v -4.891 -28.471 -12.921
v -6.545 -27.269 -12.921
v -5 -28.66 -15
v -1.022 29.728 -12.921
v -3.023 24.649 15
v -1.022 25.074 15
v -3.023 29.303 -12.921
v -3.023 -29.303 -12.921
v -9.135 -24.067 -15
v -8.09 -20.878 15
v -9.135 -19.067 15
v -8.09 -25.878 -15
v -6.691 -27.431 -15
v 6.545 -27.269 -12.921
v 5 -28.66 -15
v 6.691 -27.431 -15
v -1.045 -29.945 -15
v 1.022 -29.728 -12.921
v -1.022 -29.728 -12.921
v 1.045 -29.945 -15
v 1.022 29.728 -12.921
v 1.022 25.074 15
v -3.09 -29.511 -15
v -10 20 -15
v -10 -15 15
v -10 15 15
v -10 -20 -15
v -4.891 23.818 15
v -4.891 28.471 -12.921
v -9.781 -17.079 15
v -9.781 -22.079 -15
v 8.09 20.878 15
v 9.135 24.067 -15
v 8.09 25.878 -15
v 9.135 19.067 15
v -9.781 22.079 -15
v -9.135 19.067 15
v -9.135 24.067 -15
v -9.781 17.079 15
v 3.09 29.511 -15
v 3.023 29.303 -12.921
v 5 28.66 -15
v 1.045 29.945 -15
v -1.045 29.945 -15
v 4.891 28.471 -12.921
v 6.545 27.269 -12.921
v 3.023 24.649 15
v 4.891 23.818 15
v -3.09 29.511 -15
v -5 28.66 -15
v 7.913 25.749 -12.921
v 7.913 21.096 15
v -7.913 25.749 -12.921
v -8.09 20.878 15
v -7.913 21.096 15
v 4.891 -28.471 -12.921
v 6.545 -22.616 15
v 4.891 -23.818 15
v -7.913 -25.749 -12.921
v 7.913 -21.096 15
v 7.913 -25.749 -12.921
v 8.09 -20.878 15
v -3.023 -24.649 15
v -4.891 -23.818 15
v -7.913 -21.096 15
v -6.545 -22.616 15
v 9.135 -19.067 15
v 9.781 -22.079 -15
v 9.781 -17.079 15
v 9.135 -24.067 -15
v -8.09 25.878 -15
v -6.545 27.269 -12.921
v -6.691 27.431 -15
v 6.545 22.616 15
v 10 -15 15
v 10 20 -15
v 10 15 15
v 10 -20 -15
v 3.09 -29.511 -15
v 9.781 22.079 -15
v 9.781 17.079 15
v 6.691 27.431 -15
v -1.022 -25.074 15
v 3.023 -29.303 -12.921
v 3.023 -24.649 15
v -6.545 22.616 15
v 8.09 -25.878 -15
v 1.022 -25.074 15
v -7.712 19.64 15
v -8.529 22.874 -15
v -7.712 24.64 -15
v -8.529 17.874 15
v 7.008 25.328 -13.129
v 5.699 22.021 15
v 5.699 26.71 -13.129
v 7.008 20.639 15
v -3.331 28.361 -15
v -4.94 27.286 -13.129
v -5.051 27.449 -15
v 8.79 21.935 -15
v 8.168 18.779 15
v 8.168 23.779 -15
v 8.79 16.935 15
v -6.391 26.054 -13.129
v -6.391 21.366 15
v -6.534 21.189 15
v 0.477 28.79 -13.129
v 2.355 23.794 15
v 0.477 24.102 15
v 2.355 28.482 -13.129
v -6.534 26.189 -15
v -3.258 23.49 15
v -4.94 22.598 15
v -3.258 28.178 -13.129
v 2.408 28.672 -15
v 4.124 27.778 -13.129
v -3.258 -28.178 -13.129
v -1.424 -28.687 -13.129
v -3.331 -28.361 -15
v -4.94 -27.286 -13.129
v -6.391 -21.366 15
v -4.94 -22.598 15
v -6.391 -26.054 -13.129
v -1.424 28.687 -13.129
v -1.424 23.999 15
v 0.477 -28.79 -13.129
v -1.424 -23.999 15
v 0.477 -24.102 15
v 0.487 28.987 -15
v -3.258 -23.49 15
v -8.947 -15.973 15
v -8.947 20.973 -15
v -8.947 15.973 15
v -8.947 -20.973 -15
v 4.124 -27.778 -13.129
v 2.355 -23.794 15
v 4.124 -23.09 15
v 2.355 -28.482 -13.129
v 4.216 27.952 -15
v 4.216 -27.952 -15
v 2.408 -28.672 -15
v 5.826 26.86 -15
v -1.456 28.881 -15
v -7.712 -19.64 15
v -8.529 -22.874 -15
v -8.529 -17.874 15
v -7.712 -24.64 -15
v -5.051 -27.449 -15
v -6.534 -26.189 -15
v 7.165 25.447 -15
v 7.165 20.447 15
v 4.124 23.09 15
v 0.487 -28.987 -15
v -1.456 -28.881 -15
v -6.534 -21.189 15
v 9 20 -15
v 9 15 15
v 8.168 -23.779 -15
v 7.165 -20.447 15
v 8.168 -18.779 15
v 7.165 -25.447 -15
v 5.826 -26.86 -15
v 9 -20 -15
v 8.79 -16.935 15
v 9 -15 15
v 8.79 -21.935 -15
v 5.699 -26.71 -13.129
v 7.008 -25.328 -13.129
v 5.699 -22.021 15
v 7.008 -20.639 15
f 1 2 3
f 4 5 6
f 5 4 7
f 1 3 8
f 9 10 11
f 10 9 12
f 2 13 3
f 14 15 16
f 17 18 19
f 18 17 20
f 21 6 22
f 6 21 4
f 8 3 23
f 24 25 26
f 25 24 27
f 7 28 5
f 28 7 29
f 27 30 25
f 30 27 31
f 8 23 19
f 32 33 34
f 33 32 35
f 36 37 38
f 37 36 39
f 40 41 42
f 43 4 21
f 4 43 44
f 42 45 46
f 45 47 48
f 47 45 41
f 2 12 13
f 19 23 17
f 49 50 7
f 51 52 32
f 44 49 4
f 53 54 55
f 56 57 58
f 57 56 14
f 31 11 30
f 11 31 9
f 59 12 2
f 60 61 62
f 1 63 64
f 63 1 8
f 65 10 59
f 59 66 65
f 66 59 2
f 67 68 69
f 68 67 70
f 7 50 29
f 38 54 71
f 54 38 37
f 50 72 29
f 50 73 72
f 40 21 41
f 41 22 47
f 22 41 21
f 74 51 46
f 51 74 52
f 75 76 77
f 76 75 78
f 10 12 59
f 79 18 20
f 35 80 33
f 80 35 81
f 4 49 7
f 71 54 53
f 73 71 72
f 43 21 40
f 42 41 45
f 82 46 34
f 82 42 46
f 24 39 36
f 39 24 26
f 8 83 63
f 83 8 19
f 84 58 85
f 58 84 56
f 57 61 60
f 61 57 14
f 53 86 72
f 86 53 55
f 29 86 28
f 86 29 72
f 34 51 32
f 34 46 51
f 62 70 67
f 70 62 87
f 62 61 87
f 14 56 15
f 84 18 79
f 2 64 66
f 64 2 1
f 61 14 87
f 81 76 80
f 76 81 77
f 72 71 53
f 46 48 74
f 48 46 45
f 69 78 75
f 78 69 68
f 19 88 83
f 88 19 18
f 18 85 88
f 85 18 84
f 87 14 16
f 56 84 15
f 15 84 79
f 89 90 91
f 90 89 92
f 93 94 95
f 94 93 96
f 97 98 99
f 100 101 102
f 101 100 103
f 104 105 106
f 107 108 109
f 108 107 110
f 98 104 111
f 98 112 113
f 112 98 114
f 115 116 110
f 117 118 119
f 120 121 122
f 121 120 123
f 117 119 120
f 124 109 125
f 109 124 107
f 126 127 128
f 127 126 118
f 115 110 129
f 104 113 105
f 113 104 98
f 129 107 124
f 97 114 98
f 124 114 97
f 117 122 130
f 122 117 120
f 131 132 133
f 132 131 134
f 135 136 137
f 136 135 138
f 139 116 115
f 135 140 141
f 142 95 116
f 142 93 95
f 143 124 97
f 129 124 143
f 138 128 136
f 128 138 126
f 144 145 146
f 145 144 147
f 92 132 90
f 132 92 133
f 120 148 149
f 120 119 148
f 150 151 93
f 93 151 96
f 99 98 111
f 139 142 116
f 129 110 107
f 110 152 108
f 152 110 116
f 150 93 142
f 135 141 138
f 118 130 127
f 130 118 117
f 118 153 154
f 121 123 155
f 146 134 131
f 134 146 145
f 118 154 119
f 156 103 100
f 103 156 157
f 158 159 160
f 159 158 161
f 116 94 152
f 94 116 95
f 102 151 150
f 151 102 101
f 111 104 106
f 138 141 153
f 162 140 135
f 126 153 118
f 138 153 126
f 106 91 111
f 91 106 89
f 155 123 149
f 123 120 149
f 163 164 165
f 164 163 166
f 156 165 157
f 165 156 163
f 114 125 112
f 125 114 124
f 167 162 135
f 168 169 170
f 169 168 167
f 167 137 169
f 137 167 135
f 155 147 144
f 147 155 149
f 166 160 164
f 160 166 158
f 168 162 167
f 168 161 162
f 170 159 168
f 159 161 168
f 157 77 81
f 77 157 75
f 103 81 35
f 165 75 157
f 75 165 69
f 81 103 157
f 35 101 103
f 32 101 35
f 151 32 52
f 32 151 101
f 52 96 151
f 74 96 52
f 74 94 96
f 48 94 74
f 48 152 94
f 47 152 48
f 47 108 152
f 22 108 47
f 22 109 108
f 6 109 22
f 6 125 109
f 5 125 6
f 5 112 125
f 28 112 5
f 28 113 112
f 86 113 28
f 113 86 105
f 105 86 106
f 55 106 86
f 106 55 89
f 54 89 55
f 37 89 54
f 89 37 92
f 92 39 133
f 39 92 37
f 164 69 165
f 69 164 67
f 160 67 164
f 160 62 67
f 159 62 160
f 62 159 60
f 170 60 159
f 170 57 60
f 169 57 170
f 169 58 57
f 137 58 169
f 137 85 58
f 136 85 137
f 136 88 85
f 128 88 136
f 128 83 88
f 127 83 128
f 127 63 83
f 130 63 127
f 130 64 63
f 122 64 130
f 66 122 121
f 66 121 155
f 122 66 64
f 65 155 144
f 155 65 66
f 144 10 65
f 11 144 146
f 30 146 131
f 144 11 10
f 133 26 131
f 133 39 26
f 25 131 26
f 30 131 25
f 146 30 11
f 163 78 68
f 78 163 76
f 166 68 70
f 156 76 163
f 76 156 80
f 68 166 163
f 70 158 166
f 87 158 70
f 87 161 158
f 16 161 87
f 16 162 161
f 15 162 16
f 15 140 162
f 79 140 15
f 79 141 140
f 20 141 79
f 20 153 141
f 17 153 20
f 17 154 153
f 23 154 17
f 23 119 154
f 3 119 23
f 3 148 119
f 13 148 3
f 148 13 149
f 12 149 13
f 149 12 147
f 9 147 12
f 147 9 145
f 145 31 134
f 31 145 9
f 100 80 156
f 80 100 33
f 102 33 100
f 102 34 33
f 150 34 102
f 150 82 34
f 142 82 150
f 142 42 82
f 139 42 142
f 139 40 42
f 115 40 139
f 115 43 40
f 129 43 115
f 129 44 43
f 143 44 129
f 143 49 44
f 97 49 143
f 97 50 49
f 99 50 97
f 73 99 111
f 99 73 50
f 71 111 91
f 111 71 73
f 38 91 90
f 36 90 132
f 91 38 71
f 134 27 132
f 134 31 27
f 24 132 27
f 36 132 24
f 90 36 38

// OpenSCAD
height = 30;
z = height/2;
radius = 10;
bottom_width = 20;
top_width = 15;
erase_plate_xy = bottom_width+4*radius;

module shell() {
  hull() {
    translate([0,top_width,z]) sphere(radius);
    translate([0,bottom_width,-z]) sphere(radius);
    translate([0,-bottom_width,-z]) sphere(radius);
    translate([0,-top_width,z]) sphere(radius);
  }
}

module shell_hole() {
  hull() {
    translate([0,top_width,z]) sphere(radius-1);
    translate([0,bottom_width,-z]) sphere(radius-1);
    translate([0,-bottom_width,-z]) sphere(radius-1);
    translate([0,-top_width,z]) sphere(radius-1);
  }
}

difference() {
  shell();
  shell_hole();
  translate([0,0,height-radius]) cube([erase_plate_xy,erase_plate_xy,radius], center=true);
  translate([0,0,-height+radius]) cube([erase_plate_xy,erase_plate_xy,radius], center=true);
}
